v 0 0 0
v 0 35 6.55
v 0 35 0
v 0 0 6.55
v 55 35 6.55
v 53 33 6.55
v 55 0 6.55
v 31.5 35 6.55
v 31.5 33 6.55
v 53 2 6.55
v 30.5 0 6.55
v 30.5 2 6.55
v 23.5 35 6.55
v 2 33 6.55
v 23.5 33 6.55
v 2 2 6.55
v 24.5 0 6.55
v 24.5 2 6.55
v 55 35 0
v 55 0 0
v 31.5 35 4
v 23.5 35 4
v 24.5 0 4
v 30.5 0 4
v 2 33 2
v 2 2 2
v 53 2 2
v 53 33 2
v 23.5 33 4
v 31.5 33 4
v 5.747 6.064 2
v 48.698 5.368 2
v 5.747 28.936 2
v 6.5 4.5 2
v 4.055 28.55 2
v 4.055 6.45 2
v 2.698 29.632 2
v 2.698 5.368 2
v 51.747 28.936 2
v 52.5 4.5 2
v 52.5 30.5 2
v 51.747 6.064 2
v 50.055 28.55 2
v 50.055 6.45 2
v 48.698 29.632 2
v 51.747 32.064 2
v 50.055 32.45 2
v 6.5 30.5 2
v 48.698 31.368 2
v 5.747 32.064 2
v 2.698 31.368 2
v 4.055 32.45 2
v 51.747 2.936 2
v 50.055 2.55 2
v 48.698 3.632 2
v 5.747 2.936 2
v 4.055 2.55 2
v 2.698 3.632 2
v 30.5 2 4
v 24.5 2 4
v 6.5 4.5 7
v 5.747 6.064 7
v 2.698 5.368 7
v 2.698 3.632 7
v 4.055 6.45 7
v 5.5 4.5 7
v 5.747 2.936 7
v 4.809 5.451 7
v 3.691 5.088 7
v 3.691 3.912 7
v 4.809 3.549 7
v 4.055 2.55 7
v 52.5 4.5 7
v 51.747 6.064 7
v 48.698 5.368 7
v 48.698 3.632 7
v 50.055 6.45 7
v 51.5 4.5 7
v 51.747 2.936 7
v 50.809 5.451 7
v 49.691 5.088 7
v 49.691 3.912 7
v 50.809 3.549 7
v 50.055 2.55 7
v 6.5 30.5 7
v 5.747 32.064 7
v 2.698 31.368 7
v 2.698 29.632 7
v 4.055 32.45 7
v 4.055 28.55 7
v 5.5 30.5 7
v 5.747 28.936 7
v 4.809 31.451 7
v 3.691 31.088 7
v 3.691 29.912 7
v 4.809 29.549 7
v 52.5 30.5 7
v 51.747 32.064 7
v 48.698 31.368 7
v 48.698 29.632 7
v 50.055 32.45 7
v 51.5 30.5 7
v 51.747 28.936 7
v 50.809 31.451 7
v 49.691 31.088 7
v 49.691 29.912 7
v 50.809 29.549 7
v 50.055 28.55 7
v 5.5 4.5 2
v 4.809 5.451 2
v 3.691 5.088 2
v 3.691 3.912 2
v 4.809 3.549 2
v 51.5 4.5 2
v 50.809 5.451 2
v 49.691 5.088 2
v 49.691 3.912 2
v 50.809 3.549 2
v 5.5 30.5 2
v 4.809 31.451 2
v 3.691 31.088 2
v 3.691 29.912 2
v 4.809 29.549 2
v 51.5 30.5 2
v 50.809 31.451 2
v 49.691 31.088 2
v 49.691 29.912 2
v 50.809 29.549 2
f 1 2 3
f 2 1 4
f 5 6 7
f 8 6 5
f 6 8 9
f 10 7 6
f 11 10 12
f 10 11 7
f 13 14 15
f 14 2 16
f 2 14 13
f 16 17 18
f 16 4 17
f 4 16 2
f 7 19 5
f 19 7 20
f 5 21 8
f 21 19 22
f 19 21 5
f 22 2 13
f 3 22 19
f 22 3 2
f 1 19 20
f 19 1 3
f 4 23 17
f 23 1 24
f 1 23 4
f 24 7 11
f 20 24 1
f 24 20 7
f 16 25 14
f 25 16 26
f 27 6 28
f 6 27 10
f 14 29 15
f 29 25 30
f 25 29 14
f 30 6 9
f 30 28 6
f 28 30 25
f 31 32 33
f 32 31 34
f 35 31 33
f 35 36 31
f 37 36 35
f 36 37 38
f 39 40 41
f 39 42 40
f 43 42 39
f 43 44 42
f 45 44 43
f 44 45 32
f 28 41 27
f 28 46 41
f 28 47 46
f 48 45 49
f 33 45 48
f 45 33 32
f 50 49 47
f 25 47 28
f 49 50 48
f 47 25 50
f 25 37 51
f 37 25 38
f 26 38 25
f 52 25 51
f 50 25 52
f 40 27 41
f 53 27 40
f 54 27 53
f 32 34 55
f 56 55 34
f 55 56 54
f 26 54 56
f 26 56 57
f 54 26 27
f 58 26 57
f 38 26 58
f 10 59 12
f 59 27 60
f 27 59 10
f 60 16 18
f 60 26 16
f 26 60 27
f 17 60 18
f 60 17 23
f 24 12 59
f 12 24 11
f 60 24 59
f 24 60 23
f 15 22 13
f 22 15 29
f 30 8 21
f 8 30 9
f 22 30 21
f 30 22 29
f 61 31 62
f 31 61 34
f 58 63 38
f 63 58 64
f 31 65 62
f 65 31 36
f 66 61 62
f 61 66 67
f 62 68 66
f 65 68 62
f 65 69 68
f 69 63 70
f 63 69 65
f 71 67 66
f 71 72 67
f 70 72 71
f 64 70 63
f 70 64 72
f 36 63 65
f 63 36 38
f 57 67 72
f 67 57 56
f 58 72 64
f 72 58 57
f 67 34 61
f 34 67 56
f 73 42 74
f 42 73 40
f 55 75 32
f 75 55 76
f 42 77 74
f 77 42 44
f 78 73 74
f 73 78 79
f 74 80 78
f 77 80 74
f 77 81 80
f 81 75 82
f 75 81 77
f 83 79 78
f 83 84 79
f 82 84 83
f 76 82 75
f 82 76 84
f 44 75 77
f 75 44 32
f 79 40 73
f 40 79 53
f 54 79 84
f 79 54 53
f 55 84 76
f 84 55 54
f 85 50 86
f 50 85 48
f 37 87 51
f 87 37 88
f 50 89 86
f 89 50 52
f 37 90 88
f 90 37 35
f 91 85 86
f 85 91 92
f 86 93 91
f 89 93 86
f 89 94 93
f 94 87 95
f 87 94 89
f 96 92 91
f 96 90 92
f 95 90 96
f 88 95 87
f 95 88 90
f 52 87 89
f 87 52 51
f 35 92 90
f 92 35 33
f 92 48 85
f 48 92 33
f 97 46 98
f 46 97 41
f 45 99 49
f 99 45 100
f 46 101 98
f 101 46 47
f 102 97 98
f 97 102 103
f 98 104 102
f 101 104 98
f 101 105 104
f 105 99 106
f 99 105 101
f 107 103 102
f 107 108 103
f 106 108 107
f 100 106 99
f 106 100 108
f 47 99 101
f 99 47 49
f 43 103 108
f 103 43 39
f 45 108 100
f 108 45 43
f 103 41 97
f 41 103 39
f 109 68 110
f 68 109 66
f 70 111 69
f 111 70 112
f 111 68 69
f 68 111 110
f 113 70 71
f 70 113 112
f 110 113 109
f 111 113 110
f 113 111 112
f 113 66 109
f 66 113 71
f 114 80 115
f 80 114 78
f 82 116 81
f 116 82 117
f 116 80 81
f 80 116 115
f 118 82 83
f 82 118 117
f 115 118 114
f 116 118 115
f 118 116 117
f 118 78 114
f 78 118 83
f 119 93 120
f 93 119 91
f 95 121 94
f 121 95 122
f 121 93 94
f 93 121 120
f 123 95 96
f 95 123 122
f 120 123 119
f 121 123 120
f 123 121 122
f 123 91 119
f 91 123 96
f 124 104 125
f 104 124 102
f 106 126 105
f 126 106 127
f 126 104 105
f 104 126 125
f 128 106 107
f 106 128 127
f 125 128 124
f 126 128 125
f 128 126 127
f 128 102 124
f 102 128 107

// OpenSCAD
difference() {
	union() {
		difference() {
			cube(size = [55.0, 35.0, 6.55]);
			translate(v = [2.0, 2.0, 2.0]) {
				cube(size = [51.0, 31.0, 6.55]);
			}
			translate(v = [24.5, -1, 4.0]) {
				cube(size = [6, 4.0, 4]);
			}
			translate(v = [23.5, 32.0, 4.0]) {
				cube(size = [8, 4.0, 5]);
			}
		}
		union() {
			translate(v = [4.5, 4.5, 2.0]) {
				cylinder(h = 5.0, r = 2.0);
			}
			translate(v = [50.5, 4.5, 2.0]) {
				cylinder(h = 5.0, r = 2.0);
			}
			translate(v = [4.5, 30.5, 2.0]) {
				cylinder(h = 5.0, r = 2.0);
			}
			translate(v = [50.5, 30.5, 2.0]) {
				cylinder(h = 5.0, r = 2.0);
			}
		}
	}
	union() {
		translate(v = [4.5, 4.5, 2.0]) {
			cylinder(h = 6.0, r = 1.0);
		}
		translate(v = [50.5, 4.5, 2.0]) {
			cylinder(h = 6.0, r = 1.0);
		}
		translate(v = [4.5, 30.5, 2.0]) {
			cylinder(h = 6.0, r = 1.0);
		}
		translate(v = [50.5, 30.5, 2.0]) {
			cylinder(h = 6.0, r = 1.0);
		}
	}
}
